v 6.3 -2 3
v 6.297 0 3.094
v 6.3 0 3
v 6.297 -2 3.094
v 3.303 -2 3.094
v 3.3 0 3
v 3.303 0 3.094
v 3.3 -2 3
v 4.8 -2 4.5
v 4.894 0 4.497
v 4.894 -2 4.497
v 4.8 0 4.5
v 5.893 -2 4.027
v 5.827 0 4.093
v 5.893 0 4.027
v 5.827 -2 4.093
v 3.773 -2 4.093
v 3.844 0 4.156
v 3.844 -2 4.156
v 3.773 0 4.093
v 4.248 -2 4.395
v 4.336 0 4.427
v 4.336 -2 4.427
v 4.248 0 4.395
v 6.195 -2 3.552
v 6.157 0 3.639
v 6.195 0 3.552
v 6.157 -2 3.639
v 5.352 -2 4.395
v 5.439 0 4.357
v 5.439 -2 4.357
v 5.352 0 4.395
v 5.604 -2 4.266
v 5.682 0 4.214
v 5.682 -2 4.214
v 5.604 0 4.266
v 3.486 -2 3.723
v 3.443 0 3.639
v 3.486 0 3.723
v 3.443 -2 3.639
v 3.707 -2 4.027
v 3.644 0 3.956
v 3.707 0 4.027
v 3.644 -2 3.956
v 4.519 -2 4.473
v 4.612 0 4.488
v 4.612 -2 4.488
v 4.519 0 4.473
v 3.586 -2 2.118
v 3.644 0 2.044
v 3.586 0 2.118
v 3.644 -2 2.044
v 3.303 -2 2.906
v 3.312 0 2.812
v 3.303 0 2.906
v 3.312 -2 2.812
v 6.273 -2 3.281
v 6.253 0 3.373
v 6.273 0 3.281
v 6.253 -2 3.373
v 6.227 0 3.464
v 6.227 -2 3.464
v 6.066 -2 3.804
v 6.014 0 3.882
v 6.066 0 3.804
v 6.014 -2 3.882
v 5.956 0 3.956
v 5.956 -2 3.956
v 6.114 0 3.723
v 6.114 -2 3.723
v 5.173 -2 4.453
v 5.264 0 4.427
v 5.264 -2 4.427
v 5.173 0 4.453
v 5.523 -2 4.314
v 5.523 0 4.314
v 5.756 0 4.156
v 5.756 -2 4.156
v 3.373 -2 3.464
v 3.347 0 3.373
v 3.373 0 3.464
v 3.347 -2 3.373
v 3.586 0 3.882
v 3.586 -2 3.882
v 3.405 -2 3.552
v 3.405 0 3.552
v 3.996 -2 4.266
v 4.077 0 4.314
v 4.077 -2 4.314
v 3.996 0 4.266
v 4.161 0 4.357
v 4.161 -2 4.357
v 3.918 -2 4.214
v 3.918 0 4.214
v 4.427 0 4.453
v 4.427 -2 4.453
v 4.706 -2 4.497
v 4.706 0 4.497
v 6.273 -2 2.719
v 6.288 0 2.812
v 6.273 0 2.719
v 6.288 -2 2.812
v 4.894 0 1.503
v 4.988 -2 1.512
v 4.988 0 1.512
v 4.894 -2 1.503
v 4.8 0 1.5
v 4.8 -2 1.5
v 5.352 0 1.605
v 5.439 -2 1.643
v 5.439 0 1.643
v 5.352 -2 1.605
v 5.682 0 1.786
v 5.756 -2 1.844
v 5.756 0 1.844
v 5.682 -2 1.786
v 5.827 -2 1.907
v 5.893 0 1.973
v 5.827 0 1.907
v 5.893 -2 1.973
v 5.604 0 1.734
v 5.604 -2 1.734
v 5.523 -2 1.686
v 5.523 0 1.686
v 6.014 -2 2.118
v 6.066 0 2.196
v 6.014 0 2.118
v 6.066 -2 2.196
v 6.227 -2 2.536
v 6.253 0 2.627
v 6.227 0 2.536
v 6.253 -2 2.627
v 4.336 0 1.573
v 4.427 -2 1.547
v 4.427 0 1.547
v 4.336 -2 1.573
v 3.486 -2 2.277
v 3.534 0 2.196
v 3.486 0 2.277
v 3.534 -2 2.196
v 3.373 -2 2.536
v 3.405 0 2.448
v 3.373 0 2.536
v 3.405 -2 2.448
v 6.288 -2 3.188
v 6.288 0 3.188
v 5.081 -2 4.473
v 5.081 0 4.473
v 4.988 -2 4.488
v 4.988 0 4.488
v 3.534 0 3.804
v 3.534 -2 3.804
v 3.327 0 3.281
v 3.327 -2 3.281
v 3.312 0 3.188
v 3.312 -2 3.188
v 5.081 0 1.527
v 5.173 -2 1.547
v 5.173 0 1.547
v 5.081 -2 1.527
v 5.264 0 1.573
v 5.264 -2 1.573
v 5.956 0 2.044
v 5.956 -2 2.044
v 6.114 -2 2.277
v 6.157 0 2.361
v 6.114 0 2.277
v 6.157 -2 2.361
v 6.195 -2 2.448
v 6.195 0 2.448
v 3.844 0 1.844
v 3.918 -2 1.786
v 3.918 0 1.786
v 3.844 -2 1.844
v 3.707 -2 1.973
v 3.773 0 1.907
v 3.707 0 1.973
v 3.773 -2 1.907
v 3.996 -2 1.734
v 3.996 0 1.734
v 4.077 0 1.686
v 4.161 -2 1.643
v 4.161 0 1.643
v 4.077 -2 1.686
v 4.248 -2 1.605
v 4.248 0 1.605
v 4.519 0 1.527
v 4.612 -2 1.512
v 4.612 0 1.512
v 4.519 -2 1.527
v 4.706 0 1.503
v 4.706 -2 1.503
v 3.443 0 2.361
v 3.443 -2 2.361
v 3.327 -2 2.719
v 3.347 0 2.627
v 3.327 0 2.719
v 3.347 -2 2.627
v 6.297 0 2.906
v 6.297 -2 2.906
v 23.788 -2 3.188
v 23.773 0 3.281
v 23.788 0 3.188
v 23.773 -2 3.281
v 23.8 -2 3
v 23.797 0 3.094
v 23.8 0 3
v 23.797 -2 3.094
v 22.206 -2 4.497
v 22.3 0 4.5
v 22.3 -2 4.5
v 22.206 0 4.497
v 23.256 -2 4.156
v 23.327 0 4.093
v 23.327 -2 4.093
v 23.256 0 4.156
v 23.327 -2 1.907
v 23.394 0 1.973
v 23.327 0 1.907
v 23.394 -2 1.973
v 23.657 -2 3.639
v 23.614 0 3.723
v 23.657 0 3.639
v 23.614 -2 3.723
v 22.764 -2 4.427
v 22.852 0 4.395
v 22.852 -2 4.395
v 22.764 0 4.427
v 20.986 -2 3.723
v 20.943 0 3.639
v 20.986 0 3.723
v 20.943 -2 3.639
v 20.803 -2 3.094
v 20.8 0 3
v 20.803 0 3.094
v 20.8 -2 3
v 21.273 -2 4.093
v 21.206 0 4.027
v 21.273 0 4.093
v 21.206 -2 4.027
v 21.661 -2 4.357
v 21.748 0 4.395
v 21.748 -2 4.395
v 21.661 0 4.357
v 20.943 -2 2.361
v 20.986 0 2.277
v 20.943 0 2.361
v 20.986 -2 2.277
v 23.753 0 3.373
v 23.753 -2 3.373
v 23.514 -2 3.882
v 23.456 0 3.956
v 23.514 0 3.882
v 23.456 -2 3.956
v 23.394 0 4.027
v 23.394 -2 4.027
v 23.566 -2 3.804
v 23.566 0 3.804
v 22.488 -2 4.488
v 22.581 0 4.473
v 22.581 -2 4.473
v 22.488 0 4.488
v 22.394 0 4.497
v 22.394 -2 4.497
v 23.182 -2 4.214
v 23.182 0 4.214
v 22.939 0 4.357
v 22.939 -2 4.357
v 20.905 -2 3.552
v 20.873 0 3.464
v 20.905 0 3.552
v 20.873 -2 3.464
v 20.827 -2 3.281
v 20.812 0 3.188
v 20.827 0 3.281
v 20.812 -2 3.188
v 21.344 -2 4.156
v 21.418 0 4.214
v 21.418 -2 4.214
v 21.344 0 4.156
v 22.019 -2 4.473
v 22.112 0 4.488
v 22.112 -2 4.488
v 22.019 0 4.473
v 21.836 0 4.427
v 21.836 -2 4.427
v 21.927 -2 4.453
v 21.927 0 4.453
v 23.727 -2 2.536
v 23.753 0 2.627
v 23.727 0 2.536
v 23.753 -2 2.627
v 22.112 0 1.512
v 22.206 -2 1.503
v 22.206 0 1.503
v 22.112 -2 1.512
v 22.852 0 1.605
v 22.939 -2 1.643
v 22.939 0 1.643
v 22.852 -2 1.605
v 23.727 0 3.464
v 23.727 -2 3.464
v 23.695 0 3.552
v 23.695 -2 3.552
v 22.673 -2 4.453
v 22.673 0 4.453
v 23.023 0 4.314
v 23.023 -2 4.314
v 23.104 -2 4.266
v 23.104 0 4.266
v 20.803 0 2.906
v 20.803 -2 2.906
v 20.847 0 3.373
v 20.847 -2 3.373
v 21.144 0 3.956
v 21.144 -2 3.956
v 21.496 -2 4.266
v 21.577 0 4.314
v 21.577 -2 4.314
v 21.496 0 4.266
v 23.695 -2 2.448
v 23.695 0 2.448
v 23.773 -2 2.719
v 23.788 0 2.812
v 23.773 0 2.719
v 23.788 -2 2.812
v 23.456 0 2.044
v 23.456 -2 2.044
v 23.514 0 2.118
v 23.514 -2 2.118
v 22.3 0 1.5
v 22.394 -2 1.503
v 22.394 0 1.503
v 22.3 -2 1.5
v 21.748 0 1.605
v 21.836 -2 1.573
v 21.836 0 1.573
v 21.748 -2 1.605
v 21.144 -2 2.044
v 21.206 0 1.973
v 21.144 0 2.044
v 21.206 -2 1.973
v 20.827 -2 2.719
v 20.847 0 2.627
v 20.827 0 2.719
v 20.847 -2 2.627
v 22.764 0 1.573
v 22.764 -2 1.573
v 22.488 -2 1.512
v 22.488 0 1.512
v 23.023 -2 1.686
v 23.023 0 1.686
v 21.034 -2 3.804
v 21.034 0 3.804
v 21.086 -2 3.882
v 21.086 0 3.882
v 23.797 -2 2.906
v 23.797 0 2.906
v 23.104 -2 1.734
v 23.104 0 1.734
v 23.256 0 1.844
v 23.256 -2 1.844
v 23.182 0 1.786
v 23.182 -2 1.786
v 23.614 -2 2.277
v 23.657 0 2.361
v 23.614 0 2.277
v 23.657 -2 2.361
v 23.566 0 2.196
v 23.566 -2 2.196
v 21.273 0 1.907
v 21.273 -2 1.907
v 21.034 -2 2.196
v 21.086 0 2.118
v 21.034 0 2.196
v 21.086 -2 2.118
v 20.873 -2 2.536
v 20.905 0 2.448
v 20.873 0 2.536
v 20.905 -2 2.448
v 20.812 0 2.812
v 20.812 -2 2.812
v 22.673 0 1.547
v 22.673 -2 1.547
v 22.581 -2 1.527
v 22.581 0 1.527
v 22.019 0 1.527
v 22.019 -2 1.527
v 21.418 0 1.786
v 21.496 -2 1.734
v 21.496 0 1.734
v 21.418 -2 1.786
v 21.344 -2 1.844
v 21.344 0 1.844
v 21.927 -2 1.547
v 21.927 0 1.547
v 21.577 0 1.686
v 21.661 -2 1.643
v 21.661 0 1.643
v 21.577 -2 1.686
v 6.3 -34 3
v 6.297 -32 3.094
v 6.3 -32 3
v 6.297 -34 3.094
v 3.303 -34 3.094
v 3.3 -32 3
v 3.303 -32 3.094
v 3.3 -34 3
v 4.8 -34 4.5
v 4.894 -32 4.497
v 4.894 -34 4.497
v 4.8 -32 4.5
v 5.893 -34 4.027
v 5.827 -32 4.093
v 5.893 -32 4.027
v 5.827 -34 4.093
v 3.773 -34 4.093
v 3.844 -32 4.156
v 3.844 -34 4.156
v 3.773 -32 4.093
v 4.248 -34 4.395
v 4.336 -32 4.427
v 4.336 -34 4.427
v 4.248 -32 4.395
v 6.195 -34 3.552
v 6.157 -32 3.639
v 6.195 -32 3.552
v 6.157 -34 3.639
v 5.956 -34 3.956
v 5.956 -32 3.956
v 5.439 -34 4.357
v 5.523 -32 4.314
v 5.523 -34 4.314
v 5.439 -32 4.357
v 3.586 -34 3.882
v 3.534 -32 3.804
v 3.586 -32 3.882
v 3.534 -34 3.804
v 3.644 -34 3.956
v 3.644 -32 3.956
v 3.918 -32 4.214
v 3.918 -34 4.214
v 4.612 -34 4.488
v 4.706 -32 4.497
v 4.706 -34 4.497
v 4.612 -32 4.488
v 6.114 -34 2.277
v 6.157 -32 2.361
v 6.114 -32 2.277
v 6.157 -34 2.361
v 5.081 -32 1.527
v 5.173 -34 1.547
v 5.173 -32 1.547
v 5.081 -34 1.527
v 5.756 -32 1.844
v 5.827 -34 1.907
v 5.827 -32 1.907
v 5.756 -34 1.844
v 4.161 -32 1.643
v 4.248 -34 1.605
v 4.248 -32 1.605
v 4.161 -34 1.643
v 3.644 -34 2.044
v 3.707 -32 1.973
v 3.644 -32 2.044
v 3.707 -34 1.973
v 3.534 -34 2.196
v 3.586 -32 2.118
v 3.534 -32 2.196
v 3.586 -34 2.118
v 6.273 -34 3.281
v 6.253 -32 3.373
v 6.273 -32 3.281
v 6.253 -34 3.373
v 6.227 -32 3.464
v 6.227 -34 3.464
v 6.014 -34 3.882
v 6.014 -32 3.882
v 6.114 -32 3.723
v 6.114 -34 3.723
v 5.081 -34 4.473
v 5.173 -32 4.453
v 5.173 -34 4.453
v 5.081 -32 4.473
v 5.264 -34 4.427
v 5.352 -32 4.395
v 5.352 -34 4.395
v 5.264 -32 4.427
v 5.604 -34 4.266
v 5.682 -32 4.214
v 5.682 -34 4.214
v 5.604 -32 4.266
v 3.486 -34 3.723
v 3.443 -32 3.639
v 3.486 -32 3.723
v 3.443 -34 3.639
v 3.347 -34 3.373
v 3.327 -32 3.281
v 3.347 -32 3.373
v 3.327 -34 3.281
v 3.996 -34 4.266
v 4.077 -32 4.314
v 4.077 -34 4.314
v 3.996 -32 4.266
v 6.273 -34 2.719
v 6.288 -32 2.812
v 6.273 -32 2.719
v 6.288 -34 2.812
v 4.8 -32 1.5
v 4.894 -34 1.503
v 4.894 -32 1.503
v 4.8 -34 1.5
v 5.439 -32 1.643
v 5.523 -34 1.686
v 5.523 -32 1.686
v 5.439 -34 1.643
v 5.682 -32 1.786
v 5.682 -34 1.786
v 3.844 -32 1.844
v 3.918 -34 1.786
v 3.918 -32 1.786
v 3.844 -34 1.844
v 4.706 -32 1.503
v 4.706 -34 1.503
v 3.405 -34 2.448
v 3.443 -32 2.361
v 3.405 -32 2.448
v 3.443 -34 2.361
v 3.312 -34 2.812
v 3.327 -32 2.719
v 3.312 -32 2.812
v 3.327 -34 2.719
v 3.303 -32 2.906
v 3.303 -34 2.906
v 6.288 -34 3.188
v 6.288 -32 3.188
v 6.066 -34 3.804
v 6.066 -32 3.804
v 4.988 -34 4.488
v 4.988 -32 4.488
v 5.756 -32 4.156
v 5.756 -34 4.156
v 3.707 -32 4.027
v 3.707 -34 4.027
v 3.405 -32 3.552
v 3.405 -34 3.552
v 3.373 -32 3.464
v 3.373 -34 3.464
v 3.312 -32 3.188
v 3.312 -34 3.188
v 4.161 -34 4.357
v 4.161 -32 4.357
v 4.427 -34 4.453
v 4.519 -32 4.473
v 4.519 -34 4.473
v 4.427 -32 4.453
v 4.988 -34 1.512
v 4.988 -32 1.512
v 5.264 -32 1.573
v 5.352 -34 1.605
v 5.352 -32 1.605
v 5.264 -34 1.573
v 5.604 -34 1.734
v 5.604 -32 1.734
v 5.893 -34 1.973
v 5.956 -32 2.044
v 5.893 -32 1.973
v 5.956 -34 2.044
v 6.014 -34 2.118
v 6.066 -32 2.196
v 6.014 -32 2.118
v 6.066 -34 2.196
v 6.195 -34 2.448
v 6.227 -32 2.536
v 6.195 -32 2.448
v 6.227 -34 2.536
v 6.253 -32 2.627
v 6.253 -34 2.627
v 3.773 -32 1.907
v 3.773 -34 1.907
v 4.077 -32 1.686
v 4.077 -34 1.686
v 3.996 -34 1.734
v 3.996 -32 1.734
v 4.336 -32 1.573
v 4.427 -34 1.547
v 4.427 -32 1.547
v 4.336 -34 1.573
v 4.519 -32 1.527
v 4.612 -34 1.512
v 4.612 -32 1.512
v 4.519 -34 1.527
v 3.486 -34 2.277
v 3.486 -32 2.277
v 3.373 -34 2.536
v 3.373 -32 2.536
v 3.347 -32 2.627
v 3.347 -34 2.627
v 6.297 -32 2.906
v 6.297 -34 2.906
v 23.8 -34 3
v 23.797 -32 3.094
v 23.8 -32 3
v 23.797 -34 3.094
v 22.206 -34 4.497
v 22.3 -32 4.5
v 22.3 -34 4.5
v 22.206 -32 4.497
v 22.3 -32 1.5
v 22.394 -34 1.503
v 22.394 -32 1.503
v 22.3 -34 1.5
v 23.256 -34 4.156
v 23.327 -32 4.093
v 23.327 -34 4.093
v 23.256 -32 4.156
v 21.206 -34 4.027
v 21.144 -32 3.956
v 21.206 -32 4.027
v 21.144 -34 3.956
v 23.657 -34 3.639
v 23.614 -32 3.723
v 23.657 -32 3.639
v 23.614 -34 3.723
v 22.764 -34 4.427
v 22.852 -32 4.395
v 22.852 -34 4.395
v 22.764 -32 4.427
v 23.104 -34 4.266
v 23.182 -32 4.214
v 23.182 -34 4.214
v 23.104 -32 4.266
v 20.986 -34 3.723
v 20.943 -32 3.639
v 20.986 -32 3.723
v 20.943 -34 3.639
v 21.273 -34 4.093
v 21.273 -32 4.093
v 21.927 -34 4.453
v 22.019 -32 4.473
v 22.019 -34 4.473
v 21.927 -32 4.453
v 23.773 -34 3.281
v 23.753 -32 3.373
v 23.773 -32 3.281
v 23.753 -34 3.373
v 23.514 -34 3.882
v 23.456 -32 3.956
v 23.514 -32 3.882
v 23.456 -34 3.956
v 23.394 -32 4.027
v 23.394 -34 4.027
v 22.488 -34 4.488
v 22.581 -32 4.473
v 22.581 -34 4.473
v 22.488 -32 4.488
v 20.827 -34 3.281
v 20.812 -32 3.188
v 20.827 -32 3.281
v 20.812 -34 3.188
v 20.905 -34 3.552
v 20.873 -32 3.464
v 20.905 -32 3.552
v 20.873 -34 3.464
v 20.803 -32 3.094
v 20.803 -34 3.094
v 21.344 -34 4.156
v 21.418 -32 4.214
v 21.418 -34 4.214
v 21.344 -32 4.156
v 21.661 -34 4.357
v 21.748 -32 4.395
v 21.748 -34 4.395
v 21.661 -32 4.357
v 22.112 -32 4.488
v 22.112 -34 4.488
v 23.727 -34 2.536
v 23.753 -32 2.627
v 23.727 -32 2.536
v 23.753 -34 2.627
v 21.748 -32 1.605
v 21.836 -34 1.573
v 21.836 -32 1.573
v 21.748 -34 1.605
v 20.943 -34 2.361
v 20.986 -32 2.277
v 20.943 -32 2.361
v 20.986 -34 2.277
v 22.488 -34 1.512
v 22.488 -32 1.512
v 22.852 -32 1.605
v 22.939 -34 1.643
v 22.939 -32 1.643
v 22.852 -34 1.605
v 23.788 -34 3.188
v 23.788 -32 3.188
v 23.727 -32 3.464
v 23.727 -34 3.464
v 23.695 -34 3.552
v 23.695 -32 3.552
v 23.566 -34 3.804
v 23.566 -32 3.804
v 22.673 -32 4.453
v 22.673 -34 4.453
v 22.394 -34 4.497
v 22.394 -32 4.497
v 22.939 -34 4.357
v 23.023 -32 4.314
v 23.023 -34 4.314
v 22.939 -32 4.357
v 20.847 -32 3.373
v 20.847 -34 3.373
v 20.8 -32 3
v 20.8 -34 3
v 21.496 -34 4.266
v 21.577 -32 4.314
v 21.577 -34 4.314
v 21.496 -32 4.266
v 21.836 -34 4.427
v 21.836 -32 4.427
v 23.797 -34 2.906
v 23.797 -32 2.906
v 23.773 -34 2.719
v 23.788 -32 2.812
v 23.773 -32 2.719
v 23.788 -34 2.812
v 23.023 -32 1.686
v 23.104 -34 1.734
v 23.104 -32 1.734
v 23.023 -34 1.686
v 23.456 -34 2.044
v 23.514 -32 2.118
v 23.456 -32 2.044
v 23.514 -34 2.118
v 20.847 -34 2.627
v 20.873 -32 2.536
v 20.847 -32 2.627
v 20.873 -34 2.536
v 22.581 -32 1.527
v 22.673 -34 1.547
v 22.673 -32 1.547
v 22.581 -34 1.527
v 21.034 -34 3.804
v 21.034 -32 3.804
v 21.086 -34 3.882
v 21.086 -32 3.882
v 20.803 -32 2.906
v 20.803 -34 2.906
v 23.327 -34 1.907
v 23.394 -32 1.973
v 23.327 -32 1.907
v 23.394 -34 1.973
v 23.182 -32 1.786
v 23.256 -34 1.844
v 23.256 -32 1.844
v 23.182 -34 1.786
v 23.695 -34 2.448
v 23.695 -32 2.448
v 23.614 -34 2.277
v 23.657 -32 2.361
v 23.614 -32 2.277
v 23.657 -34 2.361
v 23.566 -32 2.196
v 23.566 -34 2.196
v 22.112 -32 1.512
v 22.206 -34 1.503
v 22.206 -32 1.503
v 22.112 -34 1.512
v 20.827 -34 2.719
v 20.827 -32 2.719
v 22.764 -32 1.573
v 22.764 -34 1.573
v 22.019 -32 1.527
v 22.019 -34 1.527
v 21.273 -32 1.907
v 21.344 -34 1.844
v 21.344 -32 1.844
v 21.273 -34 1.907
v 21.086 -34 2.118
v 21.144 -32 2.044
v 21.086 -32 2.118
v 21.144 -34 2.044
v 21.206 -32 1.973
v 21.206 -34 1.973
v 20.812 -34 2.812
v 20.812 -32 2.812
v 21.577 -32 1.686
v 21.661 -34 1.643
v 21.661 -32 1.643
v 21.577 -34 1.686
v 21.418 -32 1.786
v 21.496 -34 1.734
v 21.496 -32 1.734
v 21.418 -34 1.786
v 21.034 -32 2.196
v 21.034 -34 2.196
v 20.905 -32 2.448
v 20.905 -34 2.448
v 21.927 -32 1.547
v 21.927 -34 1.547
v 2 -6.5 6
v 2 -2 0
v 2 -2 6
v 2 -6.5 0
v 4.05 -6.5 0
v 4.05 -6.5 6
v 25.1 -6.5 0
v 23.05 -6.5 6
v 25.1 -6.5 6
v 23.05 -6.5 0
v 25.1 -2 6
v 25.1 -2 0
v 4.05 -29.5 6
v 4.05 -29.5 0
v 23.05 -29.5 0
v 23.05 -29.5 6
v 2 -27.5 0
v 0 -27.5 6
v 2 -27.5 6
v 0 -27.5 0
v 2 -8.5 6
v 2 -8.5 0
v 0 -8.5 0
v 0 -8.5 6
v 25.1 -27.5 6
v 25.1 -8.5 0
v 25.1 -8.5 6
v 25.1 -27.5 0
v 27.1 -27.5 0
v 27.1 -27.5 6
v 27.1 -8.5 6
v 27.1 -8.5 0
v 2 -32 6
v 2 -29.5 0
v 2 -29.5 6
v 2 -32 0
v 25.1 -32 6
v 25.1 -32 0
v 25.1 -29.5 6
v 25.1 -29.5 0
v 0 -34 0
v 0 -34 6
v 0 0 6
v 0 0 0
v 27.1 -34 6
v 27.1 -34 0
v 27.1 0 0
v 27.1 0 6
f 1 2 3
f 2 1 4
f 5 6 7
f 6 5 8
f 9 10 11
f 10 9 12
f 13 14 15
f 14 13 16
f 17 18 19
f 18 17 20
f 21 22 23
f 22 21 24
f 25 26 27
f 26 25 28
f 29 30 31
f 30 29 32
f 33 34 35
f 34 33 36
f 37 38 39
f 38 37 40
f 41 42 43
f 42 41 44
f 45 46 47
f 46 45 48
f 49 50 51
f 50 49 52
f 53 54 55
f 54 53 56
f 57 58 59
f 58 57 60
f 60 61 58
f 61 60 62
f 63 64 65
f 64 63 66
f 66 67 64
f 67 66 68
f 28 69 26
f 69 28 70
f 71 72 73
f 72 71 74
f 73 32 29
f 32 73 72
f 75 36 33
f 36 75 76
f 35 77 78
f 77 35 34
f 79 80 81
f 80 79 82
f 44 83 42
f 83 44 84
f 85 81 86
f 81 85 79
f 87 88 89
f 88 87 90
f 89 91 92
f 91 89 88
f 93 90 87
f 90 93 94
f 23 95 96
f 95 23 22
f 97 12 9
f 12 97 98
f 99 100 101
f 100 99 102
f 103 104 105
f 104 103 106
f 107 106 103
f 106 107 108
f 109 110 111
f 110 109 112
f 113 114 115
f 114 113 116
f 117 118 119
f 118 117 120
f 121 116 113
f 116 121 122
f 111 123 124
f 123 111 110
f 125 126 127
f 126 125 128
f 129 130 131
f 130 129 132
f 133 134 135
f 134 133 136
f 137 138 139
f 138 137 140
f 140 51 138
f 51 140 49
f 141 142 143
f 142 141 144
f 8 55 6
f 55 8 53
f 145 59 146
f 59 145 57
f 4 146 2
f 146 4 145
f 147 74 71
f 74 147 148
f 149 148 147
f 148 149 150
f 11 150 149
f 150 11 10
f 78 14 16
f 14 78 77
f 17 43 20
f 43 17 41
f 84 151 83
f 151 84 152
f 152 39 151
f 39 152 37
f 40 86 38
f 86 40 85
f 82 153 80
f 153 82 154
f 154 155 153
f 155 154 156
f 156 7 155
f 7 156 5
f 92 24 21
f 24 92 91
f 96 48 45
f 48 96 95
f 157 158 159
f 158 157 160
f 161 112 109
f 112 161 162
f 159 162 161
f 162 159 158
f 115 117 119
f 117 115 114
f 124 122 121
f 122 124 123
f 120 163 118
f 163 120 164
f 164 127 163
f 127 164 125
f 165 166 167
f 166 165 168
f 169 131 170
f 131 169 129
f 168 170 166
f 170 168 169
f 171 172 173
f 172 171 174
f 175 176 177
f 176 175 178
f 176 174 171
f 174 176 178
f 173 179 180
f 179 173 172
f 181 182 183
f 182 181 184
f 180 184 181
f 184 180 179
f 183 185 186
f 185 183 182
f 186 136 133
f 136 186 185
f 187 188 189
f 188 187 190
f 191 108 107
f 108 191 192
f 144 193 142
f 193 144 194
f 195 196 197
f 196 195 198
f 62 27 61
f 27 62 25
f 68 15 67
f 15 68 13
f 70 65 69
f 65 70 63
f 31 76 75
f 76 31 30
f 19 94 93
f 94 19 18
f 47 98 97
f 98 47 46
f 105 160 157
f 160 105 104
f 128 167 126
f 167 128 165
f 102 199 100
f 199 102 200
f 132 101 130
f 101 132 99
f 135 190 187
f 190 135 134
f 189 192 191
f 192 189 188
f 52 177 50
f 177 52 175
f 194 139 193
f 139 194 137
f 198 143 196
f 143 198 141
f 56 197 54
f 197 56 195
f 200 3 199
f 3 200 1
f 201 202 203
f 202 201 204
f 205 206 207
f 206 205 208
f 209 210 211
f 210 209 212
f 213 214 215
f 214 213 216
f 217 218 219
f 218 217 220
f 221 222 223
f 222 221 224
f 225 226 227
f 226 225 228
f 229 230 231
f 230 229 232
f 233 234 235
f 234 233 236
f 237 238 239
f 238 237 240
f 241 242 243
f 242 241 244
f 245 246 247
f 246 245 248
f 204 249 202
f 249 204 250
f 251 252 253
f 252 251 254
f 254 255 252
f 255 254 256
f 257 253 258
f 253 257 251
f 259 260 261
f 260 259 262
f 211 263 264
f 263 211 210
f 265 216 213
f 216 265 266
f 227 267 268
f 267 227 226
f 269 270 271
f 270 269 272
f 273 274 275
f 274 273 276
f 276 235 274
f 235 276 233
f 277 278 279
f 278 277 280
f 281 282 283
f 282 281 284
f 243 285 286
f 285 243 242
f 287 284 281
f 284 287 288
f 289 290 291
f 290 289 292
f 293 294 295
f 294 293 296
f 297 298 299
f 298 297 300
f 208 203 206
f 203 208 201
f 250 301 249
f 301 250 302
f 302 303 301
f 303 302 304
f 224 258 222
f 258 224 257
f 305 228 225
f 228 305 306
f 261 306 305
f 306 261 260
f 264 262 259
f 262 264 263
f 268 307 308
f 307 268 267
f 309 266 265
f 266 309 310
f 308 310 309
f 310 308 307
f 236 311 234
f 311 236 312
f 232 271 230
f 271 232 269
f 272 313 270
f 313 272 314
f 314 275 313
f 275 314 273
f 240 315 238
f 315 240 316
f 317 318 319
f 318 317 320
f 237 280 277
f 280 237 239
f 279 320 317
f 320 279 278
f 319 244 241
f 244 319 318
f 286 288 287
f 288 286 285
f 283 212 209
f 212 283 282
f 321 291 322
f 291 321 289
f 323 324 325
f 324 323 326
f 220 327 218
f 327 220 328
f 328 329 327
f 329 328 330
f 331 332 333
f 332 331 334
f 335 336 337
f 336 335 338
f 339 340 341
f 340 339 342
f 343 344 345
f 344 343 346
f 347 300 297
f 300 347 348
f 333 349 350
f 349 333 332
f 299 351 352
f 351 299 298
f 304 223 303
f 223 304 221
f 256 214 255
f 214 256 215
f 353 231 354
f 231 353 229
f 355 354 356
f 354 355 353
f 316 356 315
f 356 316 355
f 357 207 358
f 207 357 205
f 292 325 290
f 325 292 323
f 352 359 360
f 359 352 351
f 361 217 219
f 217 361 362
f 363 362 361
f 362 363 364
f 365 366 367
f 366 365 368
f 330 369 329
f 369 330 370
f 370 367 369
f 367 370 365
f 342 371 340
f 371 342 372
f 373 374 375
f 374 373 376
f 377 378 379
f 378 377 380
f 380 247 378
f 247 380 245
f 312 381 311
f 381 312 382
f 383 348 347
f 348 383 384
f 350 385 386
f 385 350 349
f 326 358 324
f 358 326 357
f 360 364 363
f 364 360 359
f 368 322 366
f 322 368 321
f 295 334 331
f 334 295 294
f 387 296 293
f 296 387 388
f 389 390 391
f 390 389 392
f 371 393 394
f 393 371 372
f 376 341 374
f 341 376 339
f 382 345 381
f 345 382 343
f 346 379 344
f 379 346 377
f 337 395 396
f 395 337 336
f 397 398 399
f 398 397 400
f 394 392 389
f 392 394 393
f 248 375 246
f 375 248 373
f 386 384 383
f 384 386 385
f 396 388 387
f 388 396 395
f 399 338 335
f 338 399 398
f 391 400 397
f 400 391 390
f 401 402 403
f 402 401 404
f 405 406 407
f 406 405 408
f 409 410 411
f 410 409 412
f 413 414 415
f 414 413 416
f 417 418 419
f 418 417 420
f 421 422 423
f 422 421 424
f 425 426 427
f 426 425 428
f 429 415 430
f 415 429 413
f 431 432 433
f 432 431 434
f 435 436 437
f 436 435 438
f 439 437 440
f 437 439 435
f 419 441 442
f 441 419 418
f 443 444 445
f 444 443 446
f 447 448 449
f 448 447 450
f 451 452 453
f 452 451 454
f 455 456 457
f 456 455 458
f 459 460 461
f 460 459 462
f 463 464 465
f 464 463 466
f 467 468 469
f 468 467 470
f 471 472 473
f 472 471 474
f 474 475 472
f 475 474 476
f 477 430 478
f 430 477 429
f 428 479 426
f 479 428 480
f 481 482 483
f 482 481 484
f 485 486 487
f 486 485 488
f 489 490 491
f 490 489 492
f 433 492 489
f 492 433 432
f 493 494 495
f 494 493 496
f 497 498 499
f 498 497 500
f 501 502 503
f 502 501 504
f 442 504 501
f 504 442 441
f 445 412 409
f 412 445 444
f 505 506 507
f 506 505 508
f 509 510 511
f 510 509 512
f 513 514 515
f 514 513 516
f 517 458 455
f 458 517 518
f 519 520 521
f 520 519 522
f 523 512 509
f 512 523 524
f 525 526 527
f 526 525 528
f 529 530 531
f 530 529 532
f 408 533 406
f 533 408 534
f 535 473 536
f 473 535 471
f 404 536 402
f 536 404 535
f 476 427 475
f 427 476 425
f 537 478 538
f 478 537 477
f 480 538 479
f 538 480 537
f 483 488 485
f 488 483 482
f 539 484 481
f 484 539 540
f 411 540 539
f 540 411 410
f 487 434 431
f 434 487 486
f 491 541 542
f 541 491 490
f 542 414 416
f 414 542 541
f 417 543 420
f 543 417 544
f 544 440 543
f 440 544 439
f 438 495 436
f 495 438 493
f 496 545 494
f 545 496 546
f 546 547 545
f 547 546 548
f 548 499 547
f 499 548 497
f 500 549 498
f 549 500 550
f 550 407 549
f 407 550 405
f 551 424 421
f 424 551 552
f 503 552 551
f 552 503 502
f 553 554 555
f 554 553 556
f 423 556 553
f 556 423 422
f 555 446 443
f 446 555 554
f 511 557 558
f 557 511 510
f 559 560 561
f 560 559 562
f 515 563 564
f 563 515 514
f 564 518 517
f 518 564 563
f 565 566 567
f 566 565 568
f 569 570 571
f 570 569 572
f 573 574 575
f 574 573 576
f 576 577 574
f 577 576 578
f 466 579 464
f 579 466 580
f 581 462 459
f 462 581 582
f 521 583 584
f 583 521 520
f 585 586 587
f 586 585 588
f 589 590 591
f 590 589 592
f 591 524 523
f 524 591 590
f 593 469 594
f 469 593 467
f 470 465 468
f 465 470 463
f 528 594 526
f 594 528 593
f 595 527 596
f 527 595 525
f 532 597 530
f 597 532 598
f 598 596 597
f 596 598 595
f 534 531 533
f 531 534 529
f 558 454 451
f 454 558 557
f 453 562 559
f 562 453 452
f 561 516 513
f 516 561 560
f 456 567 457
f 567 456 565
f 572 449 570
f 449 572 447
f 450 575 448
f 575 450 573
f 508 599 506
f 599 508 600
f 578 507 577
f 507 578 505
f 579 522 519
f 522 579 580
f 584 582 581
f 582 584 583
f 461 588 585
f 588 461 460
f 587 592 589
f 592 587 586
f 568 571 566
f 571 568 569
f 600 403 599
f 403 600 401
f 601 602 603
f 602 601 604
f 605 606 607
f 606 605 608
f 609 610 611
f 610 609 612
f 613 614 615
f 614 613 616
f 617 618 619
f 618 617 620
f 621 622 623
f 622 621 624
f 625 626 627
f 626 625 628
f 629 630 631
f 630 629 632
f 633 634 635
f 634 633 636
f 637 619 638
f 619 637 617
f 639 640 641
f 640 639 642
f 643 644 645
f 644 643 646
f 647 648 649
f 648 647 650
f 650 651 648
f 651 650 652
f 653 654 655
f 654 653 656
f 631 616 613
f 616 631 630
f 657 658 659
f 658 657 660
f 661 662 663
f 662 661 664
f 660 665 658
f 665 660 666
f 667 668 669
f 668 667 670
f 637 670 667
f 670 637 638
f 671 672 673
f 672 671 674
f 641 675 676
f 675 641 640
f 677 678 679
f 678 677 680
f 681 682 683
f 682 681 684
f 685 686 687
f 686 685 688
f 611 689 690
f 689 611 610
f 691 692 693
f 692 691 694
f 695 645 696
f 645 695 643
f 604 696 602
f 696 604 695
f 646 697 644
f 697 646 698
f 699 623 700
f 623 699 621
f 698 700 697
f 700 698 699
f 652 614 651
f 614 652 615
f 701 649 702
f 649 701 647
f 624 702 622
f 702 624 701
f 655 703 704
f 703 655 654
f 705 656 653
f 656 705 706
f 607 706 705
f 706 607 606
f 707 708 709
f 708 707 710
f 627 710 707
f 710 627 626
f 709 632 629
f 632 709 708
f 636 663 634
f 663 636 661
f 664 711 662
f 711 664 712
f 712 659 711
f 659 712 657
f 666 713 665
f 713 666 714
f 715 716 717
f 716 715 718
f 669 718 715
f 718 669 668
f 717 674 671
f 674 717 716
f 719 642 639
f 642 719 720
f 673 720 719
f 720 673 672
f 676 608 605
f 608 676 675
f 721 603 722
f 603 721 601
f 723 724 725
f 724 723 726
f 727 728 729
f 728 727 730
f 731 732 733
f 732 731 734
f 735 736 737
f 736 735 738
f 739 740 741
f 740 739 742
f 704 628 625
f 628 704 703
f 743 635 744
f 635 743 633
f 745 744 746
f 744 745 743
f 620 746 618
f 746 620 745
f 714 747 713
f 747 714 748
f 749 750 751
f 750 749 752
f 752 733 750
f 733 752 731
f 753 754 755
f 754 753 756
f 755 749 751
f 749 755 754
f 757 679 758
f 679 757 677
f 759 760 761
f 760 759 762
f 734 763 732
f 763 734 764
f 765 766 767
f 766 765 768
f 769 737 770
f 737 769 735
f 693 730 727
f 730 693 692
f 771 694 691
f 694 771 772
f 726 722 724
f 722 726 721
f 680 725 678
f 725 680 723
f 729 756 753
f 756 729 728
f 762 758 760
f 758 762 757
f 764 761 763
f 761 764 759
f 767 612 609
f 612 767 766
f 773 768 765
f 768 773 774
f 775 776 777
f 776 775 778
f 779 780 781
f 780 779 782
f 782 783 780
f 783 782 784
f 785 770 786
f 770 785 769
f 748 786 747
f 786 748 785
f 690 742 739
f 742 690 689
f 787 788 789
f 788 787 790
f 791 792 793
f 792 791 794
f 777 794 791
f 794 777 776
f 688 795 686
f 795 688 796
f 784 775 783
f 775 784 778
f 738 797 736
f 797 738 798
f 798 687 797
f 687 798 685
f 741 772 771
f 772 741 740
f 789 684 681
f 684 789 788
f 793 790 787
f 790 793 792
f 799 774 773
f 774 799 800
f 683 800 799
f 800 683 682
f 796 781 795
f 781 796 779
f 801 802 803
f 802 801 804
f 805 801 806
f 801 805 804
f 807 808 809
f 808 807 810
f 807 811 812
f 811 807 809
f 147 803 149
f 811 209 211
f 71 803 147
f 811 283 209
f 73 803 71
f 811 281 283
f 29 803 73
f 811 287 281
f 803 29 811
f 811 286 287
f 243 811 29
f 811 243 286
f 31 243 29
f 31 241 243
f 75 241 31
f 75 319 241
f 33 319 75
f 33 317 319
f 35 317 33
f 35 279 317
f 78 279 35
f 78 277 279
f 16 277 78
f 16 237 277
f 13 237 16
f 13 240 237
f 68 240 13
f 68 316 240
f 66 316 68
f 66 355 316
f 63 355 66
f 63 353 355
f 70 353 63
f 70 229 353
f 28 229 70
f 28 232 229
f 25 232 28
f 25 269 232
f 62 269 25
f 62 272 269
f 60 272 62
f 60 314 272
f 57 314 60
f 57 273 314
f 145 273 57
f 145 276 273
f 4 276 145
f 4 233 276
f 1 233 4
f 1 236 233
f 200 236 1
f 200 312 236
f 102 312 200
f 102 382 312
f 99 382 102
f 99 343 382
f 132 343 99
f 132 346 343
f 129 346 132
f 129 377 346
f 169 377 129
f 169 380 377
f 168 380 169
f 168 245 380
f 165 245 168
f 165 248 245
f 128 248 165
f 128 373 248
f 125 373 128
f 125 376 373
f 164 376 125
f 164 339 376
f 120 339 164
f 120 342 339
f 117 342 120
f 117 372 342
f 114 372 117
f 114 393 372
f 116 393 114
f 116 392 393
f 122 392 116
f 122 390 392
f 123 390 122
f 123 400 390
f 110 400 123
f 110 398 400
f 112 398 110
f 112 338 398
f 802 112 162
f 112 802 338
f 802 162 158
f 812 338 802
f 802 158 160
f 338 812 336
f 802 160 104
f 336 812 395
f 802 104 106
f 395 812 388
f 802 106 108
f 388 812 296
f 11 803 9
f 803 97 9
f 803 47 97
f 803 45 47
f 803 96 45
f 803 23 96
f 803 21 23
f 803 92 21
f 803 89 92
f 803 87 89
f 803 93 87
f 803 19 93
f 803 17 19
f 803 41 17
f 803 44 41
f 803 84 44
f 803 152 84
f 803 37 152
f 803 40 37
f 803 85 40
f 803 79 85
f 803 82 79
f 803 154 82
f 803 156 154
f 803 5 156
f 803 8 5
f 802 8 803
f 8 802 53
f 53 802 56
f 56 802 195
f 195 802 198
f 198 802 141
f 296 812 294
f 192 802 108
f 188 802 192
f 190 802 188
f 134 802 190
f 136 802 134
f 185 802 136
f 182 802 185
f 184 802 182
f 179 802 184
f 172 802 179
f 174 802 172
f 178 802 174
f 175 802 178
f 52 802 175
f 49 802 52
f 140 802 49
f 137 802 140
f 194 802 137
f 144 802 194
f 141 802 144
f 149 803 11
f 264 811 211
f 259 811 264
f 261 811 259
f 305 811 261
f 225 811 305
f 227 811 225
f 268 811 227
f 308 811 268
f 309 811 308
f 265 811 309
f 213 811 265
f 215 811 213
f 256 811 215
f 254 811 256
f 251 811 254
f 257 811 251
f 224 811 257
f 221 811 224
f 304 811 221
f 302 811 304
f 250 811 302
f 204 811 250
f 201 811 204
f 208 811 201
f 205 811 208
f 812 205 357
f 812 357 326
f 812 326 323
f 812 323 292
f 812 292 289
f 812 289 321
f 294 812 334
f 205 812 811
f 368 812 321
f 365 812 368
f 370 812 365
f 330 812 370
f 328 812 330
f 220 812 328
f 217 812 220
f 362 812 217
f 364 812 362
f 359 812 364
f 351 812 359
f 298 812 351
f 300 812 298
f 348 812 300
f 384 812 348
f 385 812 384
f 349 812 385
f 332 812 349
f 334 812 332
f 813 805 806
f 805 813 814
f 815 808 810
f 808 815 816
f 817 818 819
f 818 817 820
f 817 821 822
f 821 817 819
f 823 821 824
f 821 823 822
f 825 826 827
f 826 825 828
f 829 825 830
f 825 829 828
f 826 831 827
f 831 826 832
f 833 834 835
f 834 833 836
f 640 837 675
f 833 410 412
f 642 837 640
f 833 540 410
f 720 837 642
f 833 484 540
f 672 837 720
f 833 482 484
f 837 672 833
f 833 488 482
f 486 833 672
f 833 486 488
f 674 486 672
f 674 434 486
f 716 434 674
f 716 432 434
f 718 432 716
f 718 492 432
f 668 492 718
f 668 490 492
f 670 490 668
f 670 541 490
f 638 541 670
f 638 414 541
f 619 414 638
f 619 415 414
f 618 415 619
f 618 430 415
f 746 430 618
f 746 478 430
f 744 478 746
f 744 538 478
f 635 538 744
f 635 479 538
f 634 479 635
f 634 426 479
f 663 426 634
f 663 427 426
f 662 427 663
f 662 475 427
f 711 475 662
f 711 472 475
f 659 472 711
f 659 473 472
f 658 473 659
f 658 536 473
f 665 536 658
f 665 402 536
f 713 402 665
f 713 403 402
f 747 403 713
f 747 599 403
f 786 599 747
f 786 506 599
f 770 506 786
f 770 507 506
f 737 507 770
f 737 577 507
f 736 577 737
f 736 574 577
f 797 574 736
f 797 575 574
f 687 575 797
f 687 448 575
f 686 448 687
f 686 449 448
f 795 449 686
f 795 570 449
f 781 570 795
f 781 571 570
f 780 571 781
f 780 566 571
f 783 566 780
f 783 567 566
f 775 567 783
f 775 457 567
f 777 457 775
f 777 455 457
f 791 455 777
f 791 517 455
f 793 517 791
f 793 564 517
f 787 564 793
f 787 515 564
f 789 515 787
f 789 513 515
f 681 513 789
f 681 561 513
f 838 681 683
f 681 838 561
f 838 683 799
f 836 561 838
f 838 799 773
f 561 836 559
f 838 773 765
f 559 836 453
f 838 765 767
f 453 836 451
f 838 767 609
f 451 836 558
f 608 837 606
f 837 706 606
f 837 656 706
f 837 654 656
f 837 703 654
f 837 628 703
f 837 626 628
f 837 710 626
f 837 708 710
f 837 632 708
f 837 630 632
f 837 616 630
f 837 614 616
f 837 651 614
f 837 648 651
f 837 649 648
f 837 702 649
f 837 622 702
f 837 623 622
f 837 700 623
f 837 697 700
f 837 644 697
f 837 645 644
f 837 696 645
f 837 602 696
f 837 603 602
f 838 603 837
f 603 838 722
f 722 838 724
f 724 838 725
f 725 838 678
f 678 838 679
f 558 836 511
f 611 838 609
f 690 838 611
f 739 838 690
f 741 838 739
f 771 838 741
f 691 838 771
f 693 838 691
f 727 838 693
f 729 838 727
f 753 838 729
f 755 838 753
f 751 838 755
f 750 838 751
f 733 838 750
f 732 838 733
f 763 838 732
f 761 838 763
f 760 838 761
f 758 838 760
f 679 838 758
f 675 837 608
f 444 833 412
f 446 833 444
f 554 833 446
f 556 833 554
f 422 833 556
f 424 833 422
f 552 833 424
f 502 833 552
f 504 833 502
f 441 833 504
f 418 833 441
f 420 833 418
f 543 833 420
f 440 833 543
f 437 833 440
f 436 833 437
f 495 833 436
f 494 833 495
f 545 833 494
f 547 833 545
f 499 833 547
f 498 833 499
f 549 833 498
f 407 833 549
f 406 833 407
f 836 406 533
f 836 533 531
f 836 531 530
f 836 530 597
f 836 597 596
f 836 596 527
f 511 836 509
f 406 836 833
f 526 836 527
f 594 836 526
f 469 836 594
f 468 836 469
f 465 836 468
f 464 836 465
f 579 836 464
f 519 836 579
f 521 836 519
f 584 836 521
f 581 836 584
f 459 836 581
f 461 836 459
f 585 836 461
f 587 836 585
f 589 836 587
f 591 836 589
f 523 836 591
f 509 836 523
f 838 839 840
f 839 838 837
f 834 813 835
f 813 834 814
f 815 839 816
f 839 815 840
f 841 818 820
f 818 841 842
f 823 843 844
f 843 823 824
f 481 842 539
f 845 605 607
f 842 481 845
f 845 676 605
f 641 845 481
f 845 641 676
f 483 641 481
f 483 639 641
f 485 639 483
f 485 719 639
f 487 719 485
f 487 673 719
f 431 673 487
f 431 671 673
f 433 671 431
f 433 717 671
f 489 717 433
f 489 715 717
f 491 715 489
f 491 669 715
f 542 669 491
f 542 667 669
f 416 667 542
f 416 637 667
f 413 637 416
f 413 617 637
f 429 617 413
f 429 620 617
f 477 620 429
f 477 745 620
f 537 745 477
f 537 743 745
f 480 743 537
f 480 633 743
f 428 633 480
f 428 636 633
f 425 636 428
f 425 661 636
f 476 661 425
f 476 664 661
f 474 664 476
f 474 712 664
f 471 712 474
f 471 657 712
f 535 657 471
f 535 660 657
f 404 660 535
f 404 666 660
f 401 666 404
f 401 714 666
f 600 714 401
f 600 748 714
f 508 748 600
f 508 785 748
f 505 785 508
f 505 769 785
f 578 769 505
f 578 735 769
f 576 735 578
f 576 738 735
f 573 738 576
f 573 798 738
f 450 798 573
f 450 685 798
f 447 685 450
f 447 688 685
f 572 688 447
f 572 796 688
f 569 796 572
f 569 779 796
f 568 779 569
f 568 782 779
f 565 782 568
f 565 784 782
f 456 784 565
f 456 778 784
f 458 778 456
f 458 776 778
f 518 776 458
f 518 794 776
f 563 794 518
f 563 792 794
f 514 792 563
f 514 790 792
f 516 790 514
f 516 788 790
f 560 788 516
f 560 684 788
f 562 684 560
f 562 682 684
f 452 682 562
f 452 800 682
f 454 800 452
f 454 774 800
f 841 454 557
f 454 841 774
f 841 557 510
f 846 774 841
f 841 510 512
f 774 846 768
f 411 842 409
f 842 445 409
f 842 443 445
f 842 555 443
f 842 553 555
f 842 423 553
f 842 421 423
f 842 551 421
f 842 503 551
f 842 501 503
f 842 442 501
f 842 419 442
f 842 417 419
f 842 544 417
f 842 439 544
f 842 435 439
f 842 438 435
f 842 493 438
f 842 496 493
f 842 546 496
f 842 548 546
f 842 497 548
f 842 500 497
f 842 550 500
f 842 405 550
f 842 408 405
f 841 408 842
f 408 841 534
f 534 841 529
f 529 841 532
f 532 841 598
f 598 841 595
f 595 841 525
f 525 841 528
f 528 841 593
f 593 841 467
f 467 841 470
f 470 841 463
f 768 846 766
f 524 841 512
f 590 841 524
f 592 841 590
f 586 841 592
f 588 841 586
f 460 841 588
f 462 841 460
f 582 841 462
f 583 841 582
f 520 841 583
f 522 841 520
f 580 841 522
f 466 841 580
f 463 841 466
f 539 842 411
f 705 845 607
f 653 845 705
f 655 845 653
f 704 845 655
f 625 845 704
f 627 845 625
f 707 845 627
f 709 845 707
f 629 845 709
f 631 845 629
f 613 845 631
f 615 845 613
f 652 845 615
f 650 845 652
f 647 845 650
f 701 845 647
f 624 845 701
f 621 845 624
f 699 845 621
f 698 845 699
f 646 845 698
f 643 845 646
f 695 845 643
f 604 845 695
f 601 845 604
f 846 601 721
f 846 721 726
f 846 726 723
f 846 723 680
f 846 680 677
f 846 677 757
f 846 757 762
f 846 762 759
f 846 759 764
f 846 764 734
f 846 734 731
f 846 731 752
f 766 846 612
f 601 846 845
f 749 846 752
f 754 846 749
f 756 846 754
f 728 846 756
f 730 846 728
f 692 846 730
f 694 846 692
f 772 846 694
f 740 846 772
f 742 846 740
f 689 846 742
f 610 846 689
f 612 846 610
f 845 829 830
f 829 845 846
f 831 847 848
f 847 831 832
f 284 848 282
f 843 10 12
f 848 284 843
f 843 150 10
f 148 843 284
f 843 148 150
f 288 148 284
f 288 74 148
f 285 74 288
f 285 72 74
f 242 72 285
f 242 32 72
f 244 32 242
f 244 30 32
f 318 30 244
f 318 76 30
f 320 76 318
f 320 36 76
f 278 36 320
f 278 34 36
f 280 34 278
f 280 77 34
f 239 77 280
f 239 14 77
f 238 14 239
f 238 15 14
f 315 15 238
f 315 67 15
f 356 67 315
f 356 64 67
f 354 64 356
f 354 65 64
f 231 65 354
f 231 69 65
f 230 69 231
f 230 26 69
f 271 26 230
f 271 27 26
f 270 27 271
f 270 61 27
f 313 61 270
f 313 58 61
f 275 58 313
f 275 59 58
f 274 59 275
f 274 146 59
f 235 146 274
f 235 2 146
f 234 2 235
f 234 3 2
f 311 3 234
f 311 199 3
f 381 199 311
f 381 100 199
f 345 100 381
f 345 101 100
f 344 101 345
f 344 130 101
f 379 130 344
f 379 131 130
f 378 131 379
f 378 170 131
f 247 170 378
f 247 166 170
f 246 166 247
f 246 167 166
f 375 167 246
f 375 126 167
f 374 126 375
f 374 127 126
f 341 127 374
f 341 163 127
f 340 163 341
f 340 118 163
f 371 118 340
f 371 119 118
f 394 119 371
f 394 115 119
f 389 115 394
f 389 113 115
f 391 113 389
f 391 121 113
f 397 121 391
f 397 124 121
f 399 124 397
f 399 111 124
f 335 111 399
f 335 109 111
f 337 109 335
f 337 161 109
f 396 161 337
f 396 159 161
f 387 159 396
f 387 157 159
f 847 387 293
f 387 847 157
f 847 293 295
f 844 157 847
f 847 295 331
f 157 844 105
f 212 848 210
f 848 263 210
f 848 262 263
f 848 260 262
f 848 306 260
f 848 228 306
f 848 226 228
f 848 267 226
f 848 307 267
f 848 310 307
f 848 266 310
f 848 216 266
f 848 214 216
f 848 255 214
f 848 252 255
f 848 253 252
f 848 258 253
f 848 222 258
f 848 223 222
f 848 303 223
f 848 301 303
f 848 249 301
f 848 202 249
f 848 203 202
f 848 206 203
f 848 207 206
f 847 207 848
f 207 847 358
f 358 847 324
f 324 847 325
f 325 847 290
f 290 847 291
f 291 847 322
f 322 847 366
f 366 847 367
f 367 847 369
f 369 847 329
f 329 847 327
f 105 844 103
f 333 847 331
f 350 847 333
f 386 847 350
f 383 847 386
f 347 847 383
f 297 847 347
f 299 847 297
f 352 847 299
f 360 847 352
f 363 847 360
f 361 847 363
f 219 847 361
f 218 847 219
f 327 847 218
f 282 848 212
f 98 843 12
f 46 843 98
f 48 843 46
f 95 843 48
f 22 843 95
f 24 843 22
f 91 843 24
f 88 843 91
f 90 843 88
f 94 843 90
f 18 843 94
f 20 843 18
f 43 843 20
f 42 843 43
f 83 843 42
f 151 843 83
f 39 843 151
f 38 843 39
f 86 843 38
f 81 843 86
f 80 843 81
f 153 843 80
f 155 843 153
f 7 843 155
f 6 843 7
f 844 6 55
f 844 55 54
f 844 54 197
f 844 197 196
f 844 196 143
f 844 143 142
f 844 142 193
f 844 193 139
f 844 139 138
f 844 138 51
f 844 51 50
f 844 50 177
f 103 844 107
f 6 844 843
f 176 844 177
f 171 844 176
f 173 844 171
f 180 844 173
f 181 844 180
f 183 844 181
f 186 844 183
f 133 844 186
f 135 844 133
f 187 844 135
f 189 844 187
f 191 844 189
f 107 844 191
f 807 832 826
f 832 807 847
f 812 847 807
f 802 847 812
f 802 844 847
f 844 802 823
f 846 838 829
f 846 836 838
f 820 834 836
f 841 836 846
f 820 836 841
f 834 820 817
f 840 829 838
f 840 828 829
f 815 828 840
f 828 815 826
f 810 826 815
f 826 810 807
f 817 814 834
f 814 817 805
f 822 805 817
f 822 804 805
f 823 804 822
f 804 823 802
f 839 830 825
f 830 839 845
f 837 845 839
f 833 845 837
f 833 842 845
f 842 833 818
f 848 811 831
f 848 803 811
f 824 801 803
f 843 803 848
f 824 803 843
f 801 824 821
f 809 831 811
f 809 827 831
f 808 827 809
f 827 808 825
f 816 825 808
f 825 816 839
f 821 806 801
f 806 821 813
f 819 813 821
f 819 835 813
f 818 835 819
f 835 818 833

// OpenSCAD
// Settings.
edge_radius = 2.8;
hole_wide = 17.5;
thickness = 2;
bolt_hole_radius = 1.5;
cam_above = 11;
cam_below = 12;
nut_height = 2.5;
cam_width = 19;
ring_depth = 6;

// Derived.
cam_height = cam_above + cam_below;
frame_width = (edge_radius*2) + hole_wide;
ring_width = frame_width + (thickness*2);
ring_height = cam_above + cam_below + (nut_height * 2) + thickness * 3;
frame_top_down = thickness;
cam_top_down = frame_top_down + thickness + nut_height;
prop_top_down = cam_top_down + thickness;
feet_top_down = cam_top_down + cam_height;

// Make it!
rotate([90, 0, 0]) {
    ring();
}

module ring() {

    difference() {

        // outer box
        cube([ring_width, ring_depth, ring_height]);

        // cutouts.
        translate([0, -1, 0]) {
            union() {

                // frame top.
                translate([thickness, 0, frame_top_down]) {
                    cube([frame_width, ring_depth + 2, thickness + nut_height]);
                }

                // Cam
                translate([((ring_width - cam_width) / 2), 0, cam_top_down - 1]){
                    cube([cam_width, ring_depth + 2, cam_height + 2]);
                }

                // Props
                translate([-1, 0, prop_top_down]) {
                    cube([thickness + 1, ring_depth + 2, cam_height - thickness*2]);
                }

                translate([ring_width-thickness, 0, prop_top_down]) {
                    cube([thickness + 1, ring_depth + 2, cam_height - thickness*2]);
                }

                // Feet.
                translate([thickness, 0, feet_top_down]) {
                    cube([frame_width, ring_depth + 2, nut_height]);
                }

                // Holes.
                translate([edge_radius + thickness, (ring_depth / 2) + 1, -1]) {
                    cylinder(r=bolt_hole_radius, h=thickness+2, $fn=100);

                    translate([hole_wide, 0, 0]) {
                        cylinder(r=bolt_hole_radius, h=thickness+2, $fn=100);
                    }
                }

                translate([edge_radius + thickness, (ring_depth / 2) + 1, feet_top_down + thickness - 1]) {
                    cylinder(r=bolt_hole_radius, h=thickness+2, $fn=100);

                    translate([hole_wide, 0, 0]) {
                        cylinder(r=bolt_hole_radius, h=thickness+2, $fn=100);
                    }
                }

            }
        }
    }
}
